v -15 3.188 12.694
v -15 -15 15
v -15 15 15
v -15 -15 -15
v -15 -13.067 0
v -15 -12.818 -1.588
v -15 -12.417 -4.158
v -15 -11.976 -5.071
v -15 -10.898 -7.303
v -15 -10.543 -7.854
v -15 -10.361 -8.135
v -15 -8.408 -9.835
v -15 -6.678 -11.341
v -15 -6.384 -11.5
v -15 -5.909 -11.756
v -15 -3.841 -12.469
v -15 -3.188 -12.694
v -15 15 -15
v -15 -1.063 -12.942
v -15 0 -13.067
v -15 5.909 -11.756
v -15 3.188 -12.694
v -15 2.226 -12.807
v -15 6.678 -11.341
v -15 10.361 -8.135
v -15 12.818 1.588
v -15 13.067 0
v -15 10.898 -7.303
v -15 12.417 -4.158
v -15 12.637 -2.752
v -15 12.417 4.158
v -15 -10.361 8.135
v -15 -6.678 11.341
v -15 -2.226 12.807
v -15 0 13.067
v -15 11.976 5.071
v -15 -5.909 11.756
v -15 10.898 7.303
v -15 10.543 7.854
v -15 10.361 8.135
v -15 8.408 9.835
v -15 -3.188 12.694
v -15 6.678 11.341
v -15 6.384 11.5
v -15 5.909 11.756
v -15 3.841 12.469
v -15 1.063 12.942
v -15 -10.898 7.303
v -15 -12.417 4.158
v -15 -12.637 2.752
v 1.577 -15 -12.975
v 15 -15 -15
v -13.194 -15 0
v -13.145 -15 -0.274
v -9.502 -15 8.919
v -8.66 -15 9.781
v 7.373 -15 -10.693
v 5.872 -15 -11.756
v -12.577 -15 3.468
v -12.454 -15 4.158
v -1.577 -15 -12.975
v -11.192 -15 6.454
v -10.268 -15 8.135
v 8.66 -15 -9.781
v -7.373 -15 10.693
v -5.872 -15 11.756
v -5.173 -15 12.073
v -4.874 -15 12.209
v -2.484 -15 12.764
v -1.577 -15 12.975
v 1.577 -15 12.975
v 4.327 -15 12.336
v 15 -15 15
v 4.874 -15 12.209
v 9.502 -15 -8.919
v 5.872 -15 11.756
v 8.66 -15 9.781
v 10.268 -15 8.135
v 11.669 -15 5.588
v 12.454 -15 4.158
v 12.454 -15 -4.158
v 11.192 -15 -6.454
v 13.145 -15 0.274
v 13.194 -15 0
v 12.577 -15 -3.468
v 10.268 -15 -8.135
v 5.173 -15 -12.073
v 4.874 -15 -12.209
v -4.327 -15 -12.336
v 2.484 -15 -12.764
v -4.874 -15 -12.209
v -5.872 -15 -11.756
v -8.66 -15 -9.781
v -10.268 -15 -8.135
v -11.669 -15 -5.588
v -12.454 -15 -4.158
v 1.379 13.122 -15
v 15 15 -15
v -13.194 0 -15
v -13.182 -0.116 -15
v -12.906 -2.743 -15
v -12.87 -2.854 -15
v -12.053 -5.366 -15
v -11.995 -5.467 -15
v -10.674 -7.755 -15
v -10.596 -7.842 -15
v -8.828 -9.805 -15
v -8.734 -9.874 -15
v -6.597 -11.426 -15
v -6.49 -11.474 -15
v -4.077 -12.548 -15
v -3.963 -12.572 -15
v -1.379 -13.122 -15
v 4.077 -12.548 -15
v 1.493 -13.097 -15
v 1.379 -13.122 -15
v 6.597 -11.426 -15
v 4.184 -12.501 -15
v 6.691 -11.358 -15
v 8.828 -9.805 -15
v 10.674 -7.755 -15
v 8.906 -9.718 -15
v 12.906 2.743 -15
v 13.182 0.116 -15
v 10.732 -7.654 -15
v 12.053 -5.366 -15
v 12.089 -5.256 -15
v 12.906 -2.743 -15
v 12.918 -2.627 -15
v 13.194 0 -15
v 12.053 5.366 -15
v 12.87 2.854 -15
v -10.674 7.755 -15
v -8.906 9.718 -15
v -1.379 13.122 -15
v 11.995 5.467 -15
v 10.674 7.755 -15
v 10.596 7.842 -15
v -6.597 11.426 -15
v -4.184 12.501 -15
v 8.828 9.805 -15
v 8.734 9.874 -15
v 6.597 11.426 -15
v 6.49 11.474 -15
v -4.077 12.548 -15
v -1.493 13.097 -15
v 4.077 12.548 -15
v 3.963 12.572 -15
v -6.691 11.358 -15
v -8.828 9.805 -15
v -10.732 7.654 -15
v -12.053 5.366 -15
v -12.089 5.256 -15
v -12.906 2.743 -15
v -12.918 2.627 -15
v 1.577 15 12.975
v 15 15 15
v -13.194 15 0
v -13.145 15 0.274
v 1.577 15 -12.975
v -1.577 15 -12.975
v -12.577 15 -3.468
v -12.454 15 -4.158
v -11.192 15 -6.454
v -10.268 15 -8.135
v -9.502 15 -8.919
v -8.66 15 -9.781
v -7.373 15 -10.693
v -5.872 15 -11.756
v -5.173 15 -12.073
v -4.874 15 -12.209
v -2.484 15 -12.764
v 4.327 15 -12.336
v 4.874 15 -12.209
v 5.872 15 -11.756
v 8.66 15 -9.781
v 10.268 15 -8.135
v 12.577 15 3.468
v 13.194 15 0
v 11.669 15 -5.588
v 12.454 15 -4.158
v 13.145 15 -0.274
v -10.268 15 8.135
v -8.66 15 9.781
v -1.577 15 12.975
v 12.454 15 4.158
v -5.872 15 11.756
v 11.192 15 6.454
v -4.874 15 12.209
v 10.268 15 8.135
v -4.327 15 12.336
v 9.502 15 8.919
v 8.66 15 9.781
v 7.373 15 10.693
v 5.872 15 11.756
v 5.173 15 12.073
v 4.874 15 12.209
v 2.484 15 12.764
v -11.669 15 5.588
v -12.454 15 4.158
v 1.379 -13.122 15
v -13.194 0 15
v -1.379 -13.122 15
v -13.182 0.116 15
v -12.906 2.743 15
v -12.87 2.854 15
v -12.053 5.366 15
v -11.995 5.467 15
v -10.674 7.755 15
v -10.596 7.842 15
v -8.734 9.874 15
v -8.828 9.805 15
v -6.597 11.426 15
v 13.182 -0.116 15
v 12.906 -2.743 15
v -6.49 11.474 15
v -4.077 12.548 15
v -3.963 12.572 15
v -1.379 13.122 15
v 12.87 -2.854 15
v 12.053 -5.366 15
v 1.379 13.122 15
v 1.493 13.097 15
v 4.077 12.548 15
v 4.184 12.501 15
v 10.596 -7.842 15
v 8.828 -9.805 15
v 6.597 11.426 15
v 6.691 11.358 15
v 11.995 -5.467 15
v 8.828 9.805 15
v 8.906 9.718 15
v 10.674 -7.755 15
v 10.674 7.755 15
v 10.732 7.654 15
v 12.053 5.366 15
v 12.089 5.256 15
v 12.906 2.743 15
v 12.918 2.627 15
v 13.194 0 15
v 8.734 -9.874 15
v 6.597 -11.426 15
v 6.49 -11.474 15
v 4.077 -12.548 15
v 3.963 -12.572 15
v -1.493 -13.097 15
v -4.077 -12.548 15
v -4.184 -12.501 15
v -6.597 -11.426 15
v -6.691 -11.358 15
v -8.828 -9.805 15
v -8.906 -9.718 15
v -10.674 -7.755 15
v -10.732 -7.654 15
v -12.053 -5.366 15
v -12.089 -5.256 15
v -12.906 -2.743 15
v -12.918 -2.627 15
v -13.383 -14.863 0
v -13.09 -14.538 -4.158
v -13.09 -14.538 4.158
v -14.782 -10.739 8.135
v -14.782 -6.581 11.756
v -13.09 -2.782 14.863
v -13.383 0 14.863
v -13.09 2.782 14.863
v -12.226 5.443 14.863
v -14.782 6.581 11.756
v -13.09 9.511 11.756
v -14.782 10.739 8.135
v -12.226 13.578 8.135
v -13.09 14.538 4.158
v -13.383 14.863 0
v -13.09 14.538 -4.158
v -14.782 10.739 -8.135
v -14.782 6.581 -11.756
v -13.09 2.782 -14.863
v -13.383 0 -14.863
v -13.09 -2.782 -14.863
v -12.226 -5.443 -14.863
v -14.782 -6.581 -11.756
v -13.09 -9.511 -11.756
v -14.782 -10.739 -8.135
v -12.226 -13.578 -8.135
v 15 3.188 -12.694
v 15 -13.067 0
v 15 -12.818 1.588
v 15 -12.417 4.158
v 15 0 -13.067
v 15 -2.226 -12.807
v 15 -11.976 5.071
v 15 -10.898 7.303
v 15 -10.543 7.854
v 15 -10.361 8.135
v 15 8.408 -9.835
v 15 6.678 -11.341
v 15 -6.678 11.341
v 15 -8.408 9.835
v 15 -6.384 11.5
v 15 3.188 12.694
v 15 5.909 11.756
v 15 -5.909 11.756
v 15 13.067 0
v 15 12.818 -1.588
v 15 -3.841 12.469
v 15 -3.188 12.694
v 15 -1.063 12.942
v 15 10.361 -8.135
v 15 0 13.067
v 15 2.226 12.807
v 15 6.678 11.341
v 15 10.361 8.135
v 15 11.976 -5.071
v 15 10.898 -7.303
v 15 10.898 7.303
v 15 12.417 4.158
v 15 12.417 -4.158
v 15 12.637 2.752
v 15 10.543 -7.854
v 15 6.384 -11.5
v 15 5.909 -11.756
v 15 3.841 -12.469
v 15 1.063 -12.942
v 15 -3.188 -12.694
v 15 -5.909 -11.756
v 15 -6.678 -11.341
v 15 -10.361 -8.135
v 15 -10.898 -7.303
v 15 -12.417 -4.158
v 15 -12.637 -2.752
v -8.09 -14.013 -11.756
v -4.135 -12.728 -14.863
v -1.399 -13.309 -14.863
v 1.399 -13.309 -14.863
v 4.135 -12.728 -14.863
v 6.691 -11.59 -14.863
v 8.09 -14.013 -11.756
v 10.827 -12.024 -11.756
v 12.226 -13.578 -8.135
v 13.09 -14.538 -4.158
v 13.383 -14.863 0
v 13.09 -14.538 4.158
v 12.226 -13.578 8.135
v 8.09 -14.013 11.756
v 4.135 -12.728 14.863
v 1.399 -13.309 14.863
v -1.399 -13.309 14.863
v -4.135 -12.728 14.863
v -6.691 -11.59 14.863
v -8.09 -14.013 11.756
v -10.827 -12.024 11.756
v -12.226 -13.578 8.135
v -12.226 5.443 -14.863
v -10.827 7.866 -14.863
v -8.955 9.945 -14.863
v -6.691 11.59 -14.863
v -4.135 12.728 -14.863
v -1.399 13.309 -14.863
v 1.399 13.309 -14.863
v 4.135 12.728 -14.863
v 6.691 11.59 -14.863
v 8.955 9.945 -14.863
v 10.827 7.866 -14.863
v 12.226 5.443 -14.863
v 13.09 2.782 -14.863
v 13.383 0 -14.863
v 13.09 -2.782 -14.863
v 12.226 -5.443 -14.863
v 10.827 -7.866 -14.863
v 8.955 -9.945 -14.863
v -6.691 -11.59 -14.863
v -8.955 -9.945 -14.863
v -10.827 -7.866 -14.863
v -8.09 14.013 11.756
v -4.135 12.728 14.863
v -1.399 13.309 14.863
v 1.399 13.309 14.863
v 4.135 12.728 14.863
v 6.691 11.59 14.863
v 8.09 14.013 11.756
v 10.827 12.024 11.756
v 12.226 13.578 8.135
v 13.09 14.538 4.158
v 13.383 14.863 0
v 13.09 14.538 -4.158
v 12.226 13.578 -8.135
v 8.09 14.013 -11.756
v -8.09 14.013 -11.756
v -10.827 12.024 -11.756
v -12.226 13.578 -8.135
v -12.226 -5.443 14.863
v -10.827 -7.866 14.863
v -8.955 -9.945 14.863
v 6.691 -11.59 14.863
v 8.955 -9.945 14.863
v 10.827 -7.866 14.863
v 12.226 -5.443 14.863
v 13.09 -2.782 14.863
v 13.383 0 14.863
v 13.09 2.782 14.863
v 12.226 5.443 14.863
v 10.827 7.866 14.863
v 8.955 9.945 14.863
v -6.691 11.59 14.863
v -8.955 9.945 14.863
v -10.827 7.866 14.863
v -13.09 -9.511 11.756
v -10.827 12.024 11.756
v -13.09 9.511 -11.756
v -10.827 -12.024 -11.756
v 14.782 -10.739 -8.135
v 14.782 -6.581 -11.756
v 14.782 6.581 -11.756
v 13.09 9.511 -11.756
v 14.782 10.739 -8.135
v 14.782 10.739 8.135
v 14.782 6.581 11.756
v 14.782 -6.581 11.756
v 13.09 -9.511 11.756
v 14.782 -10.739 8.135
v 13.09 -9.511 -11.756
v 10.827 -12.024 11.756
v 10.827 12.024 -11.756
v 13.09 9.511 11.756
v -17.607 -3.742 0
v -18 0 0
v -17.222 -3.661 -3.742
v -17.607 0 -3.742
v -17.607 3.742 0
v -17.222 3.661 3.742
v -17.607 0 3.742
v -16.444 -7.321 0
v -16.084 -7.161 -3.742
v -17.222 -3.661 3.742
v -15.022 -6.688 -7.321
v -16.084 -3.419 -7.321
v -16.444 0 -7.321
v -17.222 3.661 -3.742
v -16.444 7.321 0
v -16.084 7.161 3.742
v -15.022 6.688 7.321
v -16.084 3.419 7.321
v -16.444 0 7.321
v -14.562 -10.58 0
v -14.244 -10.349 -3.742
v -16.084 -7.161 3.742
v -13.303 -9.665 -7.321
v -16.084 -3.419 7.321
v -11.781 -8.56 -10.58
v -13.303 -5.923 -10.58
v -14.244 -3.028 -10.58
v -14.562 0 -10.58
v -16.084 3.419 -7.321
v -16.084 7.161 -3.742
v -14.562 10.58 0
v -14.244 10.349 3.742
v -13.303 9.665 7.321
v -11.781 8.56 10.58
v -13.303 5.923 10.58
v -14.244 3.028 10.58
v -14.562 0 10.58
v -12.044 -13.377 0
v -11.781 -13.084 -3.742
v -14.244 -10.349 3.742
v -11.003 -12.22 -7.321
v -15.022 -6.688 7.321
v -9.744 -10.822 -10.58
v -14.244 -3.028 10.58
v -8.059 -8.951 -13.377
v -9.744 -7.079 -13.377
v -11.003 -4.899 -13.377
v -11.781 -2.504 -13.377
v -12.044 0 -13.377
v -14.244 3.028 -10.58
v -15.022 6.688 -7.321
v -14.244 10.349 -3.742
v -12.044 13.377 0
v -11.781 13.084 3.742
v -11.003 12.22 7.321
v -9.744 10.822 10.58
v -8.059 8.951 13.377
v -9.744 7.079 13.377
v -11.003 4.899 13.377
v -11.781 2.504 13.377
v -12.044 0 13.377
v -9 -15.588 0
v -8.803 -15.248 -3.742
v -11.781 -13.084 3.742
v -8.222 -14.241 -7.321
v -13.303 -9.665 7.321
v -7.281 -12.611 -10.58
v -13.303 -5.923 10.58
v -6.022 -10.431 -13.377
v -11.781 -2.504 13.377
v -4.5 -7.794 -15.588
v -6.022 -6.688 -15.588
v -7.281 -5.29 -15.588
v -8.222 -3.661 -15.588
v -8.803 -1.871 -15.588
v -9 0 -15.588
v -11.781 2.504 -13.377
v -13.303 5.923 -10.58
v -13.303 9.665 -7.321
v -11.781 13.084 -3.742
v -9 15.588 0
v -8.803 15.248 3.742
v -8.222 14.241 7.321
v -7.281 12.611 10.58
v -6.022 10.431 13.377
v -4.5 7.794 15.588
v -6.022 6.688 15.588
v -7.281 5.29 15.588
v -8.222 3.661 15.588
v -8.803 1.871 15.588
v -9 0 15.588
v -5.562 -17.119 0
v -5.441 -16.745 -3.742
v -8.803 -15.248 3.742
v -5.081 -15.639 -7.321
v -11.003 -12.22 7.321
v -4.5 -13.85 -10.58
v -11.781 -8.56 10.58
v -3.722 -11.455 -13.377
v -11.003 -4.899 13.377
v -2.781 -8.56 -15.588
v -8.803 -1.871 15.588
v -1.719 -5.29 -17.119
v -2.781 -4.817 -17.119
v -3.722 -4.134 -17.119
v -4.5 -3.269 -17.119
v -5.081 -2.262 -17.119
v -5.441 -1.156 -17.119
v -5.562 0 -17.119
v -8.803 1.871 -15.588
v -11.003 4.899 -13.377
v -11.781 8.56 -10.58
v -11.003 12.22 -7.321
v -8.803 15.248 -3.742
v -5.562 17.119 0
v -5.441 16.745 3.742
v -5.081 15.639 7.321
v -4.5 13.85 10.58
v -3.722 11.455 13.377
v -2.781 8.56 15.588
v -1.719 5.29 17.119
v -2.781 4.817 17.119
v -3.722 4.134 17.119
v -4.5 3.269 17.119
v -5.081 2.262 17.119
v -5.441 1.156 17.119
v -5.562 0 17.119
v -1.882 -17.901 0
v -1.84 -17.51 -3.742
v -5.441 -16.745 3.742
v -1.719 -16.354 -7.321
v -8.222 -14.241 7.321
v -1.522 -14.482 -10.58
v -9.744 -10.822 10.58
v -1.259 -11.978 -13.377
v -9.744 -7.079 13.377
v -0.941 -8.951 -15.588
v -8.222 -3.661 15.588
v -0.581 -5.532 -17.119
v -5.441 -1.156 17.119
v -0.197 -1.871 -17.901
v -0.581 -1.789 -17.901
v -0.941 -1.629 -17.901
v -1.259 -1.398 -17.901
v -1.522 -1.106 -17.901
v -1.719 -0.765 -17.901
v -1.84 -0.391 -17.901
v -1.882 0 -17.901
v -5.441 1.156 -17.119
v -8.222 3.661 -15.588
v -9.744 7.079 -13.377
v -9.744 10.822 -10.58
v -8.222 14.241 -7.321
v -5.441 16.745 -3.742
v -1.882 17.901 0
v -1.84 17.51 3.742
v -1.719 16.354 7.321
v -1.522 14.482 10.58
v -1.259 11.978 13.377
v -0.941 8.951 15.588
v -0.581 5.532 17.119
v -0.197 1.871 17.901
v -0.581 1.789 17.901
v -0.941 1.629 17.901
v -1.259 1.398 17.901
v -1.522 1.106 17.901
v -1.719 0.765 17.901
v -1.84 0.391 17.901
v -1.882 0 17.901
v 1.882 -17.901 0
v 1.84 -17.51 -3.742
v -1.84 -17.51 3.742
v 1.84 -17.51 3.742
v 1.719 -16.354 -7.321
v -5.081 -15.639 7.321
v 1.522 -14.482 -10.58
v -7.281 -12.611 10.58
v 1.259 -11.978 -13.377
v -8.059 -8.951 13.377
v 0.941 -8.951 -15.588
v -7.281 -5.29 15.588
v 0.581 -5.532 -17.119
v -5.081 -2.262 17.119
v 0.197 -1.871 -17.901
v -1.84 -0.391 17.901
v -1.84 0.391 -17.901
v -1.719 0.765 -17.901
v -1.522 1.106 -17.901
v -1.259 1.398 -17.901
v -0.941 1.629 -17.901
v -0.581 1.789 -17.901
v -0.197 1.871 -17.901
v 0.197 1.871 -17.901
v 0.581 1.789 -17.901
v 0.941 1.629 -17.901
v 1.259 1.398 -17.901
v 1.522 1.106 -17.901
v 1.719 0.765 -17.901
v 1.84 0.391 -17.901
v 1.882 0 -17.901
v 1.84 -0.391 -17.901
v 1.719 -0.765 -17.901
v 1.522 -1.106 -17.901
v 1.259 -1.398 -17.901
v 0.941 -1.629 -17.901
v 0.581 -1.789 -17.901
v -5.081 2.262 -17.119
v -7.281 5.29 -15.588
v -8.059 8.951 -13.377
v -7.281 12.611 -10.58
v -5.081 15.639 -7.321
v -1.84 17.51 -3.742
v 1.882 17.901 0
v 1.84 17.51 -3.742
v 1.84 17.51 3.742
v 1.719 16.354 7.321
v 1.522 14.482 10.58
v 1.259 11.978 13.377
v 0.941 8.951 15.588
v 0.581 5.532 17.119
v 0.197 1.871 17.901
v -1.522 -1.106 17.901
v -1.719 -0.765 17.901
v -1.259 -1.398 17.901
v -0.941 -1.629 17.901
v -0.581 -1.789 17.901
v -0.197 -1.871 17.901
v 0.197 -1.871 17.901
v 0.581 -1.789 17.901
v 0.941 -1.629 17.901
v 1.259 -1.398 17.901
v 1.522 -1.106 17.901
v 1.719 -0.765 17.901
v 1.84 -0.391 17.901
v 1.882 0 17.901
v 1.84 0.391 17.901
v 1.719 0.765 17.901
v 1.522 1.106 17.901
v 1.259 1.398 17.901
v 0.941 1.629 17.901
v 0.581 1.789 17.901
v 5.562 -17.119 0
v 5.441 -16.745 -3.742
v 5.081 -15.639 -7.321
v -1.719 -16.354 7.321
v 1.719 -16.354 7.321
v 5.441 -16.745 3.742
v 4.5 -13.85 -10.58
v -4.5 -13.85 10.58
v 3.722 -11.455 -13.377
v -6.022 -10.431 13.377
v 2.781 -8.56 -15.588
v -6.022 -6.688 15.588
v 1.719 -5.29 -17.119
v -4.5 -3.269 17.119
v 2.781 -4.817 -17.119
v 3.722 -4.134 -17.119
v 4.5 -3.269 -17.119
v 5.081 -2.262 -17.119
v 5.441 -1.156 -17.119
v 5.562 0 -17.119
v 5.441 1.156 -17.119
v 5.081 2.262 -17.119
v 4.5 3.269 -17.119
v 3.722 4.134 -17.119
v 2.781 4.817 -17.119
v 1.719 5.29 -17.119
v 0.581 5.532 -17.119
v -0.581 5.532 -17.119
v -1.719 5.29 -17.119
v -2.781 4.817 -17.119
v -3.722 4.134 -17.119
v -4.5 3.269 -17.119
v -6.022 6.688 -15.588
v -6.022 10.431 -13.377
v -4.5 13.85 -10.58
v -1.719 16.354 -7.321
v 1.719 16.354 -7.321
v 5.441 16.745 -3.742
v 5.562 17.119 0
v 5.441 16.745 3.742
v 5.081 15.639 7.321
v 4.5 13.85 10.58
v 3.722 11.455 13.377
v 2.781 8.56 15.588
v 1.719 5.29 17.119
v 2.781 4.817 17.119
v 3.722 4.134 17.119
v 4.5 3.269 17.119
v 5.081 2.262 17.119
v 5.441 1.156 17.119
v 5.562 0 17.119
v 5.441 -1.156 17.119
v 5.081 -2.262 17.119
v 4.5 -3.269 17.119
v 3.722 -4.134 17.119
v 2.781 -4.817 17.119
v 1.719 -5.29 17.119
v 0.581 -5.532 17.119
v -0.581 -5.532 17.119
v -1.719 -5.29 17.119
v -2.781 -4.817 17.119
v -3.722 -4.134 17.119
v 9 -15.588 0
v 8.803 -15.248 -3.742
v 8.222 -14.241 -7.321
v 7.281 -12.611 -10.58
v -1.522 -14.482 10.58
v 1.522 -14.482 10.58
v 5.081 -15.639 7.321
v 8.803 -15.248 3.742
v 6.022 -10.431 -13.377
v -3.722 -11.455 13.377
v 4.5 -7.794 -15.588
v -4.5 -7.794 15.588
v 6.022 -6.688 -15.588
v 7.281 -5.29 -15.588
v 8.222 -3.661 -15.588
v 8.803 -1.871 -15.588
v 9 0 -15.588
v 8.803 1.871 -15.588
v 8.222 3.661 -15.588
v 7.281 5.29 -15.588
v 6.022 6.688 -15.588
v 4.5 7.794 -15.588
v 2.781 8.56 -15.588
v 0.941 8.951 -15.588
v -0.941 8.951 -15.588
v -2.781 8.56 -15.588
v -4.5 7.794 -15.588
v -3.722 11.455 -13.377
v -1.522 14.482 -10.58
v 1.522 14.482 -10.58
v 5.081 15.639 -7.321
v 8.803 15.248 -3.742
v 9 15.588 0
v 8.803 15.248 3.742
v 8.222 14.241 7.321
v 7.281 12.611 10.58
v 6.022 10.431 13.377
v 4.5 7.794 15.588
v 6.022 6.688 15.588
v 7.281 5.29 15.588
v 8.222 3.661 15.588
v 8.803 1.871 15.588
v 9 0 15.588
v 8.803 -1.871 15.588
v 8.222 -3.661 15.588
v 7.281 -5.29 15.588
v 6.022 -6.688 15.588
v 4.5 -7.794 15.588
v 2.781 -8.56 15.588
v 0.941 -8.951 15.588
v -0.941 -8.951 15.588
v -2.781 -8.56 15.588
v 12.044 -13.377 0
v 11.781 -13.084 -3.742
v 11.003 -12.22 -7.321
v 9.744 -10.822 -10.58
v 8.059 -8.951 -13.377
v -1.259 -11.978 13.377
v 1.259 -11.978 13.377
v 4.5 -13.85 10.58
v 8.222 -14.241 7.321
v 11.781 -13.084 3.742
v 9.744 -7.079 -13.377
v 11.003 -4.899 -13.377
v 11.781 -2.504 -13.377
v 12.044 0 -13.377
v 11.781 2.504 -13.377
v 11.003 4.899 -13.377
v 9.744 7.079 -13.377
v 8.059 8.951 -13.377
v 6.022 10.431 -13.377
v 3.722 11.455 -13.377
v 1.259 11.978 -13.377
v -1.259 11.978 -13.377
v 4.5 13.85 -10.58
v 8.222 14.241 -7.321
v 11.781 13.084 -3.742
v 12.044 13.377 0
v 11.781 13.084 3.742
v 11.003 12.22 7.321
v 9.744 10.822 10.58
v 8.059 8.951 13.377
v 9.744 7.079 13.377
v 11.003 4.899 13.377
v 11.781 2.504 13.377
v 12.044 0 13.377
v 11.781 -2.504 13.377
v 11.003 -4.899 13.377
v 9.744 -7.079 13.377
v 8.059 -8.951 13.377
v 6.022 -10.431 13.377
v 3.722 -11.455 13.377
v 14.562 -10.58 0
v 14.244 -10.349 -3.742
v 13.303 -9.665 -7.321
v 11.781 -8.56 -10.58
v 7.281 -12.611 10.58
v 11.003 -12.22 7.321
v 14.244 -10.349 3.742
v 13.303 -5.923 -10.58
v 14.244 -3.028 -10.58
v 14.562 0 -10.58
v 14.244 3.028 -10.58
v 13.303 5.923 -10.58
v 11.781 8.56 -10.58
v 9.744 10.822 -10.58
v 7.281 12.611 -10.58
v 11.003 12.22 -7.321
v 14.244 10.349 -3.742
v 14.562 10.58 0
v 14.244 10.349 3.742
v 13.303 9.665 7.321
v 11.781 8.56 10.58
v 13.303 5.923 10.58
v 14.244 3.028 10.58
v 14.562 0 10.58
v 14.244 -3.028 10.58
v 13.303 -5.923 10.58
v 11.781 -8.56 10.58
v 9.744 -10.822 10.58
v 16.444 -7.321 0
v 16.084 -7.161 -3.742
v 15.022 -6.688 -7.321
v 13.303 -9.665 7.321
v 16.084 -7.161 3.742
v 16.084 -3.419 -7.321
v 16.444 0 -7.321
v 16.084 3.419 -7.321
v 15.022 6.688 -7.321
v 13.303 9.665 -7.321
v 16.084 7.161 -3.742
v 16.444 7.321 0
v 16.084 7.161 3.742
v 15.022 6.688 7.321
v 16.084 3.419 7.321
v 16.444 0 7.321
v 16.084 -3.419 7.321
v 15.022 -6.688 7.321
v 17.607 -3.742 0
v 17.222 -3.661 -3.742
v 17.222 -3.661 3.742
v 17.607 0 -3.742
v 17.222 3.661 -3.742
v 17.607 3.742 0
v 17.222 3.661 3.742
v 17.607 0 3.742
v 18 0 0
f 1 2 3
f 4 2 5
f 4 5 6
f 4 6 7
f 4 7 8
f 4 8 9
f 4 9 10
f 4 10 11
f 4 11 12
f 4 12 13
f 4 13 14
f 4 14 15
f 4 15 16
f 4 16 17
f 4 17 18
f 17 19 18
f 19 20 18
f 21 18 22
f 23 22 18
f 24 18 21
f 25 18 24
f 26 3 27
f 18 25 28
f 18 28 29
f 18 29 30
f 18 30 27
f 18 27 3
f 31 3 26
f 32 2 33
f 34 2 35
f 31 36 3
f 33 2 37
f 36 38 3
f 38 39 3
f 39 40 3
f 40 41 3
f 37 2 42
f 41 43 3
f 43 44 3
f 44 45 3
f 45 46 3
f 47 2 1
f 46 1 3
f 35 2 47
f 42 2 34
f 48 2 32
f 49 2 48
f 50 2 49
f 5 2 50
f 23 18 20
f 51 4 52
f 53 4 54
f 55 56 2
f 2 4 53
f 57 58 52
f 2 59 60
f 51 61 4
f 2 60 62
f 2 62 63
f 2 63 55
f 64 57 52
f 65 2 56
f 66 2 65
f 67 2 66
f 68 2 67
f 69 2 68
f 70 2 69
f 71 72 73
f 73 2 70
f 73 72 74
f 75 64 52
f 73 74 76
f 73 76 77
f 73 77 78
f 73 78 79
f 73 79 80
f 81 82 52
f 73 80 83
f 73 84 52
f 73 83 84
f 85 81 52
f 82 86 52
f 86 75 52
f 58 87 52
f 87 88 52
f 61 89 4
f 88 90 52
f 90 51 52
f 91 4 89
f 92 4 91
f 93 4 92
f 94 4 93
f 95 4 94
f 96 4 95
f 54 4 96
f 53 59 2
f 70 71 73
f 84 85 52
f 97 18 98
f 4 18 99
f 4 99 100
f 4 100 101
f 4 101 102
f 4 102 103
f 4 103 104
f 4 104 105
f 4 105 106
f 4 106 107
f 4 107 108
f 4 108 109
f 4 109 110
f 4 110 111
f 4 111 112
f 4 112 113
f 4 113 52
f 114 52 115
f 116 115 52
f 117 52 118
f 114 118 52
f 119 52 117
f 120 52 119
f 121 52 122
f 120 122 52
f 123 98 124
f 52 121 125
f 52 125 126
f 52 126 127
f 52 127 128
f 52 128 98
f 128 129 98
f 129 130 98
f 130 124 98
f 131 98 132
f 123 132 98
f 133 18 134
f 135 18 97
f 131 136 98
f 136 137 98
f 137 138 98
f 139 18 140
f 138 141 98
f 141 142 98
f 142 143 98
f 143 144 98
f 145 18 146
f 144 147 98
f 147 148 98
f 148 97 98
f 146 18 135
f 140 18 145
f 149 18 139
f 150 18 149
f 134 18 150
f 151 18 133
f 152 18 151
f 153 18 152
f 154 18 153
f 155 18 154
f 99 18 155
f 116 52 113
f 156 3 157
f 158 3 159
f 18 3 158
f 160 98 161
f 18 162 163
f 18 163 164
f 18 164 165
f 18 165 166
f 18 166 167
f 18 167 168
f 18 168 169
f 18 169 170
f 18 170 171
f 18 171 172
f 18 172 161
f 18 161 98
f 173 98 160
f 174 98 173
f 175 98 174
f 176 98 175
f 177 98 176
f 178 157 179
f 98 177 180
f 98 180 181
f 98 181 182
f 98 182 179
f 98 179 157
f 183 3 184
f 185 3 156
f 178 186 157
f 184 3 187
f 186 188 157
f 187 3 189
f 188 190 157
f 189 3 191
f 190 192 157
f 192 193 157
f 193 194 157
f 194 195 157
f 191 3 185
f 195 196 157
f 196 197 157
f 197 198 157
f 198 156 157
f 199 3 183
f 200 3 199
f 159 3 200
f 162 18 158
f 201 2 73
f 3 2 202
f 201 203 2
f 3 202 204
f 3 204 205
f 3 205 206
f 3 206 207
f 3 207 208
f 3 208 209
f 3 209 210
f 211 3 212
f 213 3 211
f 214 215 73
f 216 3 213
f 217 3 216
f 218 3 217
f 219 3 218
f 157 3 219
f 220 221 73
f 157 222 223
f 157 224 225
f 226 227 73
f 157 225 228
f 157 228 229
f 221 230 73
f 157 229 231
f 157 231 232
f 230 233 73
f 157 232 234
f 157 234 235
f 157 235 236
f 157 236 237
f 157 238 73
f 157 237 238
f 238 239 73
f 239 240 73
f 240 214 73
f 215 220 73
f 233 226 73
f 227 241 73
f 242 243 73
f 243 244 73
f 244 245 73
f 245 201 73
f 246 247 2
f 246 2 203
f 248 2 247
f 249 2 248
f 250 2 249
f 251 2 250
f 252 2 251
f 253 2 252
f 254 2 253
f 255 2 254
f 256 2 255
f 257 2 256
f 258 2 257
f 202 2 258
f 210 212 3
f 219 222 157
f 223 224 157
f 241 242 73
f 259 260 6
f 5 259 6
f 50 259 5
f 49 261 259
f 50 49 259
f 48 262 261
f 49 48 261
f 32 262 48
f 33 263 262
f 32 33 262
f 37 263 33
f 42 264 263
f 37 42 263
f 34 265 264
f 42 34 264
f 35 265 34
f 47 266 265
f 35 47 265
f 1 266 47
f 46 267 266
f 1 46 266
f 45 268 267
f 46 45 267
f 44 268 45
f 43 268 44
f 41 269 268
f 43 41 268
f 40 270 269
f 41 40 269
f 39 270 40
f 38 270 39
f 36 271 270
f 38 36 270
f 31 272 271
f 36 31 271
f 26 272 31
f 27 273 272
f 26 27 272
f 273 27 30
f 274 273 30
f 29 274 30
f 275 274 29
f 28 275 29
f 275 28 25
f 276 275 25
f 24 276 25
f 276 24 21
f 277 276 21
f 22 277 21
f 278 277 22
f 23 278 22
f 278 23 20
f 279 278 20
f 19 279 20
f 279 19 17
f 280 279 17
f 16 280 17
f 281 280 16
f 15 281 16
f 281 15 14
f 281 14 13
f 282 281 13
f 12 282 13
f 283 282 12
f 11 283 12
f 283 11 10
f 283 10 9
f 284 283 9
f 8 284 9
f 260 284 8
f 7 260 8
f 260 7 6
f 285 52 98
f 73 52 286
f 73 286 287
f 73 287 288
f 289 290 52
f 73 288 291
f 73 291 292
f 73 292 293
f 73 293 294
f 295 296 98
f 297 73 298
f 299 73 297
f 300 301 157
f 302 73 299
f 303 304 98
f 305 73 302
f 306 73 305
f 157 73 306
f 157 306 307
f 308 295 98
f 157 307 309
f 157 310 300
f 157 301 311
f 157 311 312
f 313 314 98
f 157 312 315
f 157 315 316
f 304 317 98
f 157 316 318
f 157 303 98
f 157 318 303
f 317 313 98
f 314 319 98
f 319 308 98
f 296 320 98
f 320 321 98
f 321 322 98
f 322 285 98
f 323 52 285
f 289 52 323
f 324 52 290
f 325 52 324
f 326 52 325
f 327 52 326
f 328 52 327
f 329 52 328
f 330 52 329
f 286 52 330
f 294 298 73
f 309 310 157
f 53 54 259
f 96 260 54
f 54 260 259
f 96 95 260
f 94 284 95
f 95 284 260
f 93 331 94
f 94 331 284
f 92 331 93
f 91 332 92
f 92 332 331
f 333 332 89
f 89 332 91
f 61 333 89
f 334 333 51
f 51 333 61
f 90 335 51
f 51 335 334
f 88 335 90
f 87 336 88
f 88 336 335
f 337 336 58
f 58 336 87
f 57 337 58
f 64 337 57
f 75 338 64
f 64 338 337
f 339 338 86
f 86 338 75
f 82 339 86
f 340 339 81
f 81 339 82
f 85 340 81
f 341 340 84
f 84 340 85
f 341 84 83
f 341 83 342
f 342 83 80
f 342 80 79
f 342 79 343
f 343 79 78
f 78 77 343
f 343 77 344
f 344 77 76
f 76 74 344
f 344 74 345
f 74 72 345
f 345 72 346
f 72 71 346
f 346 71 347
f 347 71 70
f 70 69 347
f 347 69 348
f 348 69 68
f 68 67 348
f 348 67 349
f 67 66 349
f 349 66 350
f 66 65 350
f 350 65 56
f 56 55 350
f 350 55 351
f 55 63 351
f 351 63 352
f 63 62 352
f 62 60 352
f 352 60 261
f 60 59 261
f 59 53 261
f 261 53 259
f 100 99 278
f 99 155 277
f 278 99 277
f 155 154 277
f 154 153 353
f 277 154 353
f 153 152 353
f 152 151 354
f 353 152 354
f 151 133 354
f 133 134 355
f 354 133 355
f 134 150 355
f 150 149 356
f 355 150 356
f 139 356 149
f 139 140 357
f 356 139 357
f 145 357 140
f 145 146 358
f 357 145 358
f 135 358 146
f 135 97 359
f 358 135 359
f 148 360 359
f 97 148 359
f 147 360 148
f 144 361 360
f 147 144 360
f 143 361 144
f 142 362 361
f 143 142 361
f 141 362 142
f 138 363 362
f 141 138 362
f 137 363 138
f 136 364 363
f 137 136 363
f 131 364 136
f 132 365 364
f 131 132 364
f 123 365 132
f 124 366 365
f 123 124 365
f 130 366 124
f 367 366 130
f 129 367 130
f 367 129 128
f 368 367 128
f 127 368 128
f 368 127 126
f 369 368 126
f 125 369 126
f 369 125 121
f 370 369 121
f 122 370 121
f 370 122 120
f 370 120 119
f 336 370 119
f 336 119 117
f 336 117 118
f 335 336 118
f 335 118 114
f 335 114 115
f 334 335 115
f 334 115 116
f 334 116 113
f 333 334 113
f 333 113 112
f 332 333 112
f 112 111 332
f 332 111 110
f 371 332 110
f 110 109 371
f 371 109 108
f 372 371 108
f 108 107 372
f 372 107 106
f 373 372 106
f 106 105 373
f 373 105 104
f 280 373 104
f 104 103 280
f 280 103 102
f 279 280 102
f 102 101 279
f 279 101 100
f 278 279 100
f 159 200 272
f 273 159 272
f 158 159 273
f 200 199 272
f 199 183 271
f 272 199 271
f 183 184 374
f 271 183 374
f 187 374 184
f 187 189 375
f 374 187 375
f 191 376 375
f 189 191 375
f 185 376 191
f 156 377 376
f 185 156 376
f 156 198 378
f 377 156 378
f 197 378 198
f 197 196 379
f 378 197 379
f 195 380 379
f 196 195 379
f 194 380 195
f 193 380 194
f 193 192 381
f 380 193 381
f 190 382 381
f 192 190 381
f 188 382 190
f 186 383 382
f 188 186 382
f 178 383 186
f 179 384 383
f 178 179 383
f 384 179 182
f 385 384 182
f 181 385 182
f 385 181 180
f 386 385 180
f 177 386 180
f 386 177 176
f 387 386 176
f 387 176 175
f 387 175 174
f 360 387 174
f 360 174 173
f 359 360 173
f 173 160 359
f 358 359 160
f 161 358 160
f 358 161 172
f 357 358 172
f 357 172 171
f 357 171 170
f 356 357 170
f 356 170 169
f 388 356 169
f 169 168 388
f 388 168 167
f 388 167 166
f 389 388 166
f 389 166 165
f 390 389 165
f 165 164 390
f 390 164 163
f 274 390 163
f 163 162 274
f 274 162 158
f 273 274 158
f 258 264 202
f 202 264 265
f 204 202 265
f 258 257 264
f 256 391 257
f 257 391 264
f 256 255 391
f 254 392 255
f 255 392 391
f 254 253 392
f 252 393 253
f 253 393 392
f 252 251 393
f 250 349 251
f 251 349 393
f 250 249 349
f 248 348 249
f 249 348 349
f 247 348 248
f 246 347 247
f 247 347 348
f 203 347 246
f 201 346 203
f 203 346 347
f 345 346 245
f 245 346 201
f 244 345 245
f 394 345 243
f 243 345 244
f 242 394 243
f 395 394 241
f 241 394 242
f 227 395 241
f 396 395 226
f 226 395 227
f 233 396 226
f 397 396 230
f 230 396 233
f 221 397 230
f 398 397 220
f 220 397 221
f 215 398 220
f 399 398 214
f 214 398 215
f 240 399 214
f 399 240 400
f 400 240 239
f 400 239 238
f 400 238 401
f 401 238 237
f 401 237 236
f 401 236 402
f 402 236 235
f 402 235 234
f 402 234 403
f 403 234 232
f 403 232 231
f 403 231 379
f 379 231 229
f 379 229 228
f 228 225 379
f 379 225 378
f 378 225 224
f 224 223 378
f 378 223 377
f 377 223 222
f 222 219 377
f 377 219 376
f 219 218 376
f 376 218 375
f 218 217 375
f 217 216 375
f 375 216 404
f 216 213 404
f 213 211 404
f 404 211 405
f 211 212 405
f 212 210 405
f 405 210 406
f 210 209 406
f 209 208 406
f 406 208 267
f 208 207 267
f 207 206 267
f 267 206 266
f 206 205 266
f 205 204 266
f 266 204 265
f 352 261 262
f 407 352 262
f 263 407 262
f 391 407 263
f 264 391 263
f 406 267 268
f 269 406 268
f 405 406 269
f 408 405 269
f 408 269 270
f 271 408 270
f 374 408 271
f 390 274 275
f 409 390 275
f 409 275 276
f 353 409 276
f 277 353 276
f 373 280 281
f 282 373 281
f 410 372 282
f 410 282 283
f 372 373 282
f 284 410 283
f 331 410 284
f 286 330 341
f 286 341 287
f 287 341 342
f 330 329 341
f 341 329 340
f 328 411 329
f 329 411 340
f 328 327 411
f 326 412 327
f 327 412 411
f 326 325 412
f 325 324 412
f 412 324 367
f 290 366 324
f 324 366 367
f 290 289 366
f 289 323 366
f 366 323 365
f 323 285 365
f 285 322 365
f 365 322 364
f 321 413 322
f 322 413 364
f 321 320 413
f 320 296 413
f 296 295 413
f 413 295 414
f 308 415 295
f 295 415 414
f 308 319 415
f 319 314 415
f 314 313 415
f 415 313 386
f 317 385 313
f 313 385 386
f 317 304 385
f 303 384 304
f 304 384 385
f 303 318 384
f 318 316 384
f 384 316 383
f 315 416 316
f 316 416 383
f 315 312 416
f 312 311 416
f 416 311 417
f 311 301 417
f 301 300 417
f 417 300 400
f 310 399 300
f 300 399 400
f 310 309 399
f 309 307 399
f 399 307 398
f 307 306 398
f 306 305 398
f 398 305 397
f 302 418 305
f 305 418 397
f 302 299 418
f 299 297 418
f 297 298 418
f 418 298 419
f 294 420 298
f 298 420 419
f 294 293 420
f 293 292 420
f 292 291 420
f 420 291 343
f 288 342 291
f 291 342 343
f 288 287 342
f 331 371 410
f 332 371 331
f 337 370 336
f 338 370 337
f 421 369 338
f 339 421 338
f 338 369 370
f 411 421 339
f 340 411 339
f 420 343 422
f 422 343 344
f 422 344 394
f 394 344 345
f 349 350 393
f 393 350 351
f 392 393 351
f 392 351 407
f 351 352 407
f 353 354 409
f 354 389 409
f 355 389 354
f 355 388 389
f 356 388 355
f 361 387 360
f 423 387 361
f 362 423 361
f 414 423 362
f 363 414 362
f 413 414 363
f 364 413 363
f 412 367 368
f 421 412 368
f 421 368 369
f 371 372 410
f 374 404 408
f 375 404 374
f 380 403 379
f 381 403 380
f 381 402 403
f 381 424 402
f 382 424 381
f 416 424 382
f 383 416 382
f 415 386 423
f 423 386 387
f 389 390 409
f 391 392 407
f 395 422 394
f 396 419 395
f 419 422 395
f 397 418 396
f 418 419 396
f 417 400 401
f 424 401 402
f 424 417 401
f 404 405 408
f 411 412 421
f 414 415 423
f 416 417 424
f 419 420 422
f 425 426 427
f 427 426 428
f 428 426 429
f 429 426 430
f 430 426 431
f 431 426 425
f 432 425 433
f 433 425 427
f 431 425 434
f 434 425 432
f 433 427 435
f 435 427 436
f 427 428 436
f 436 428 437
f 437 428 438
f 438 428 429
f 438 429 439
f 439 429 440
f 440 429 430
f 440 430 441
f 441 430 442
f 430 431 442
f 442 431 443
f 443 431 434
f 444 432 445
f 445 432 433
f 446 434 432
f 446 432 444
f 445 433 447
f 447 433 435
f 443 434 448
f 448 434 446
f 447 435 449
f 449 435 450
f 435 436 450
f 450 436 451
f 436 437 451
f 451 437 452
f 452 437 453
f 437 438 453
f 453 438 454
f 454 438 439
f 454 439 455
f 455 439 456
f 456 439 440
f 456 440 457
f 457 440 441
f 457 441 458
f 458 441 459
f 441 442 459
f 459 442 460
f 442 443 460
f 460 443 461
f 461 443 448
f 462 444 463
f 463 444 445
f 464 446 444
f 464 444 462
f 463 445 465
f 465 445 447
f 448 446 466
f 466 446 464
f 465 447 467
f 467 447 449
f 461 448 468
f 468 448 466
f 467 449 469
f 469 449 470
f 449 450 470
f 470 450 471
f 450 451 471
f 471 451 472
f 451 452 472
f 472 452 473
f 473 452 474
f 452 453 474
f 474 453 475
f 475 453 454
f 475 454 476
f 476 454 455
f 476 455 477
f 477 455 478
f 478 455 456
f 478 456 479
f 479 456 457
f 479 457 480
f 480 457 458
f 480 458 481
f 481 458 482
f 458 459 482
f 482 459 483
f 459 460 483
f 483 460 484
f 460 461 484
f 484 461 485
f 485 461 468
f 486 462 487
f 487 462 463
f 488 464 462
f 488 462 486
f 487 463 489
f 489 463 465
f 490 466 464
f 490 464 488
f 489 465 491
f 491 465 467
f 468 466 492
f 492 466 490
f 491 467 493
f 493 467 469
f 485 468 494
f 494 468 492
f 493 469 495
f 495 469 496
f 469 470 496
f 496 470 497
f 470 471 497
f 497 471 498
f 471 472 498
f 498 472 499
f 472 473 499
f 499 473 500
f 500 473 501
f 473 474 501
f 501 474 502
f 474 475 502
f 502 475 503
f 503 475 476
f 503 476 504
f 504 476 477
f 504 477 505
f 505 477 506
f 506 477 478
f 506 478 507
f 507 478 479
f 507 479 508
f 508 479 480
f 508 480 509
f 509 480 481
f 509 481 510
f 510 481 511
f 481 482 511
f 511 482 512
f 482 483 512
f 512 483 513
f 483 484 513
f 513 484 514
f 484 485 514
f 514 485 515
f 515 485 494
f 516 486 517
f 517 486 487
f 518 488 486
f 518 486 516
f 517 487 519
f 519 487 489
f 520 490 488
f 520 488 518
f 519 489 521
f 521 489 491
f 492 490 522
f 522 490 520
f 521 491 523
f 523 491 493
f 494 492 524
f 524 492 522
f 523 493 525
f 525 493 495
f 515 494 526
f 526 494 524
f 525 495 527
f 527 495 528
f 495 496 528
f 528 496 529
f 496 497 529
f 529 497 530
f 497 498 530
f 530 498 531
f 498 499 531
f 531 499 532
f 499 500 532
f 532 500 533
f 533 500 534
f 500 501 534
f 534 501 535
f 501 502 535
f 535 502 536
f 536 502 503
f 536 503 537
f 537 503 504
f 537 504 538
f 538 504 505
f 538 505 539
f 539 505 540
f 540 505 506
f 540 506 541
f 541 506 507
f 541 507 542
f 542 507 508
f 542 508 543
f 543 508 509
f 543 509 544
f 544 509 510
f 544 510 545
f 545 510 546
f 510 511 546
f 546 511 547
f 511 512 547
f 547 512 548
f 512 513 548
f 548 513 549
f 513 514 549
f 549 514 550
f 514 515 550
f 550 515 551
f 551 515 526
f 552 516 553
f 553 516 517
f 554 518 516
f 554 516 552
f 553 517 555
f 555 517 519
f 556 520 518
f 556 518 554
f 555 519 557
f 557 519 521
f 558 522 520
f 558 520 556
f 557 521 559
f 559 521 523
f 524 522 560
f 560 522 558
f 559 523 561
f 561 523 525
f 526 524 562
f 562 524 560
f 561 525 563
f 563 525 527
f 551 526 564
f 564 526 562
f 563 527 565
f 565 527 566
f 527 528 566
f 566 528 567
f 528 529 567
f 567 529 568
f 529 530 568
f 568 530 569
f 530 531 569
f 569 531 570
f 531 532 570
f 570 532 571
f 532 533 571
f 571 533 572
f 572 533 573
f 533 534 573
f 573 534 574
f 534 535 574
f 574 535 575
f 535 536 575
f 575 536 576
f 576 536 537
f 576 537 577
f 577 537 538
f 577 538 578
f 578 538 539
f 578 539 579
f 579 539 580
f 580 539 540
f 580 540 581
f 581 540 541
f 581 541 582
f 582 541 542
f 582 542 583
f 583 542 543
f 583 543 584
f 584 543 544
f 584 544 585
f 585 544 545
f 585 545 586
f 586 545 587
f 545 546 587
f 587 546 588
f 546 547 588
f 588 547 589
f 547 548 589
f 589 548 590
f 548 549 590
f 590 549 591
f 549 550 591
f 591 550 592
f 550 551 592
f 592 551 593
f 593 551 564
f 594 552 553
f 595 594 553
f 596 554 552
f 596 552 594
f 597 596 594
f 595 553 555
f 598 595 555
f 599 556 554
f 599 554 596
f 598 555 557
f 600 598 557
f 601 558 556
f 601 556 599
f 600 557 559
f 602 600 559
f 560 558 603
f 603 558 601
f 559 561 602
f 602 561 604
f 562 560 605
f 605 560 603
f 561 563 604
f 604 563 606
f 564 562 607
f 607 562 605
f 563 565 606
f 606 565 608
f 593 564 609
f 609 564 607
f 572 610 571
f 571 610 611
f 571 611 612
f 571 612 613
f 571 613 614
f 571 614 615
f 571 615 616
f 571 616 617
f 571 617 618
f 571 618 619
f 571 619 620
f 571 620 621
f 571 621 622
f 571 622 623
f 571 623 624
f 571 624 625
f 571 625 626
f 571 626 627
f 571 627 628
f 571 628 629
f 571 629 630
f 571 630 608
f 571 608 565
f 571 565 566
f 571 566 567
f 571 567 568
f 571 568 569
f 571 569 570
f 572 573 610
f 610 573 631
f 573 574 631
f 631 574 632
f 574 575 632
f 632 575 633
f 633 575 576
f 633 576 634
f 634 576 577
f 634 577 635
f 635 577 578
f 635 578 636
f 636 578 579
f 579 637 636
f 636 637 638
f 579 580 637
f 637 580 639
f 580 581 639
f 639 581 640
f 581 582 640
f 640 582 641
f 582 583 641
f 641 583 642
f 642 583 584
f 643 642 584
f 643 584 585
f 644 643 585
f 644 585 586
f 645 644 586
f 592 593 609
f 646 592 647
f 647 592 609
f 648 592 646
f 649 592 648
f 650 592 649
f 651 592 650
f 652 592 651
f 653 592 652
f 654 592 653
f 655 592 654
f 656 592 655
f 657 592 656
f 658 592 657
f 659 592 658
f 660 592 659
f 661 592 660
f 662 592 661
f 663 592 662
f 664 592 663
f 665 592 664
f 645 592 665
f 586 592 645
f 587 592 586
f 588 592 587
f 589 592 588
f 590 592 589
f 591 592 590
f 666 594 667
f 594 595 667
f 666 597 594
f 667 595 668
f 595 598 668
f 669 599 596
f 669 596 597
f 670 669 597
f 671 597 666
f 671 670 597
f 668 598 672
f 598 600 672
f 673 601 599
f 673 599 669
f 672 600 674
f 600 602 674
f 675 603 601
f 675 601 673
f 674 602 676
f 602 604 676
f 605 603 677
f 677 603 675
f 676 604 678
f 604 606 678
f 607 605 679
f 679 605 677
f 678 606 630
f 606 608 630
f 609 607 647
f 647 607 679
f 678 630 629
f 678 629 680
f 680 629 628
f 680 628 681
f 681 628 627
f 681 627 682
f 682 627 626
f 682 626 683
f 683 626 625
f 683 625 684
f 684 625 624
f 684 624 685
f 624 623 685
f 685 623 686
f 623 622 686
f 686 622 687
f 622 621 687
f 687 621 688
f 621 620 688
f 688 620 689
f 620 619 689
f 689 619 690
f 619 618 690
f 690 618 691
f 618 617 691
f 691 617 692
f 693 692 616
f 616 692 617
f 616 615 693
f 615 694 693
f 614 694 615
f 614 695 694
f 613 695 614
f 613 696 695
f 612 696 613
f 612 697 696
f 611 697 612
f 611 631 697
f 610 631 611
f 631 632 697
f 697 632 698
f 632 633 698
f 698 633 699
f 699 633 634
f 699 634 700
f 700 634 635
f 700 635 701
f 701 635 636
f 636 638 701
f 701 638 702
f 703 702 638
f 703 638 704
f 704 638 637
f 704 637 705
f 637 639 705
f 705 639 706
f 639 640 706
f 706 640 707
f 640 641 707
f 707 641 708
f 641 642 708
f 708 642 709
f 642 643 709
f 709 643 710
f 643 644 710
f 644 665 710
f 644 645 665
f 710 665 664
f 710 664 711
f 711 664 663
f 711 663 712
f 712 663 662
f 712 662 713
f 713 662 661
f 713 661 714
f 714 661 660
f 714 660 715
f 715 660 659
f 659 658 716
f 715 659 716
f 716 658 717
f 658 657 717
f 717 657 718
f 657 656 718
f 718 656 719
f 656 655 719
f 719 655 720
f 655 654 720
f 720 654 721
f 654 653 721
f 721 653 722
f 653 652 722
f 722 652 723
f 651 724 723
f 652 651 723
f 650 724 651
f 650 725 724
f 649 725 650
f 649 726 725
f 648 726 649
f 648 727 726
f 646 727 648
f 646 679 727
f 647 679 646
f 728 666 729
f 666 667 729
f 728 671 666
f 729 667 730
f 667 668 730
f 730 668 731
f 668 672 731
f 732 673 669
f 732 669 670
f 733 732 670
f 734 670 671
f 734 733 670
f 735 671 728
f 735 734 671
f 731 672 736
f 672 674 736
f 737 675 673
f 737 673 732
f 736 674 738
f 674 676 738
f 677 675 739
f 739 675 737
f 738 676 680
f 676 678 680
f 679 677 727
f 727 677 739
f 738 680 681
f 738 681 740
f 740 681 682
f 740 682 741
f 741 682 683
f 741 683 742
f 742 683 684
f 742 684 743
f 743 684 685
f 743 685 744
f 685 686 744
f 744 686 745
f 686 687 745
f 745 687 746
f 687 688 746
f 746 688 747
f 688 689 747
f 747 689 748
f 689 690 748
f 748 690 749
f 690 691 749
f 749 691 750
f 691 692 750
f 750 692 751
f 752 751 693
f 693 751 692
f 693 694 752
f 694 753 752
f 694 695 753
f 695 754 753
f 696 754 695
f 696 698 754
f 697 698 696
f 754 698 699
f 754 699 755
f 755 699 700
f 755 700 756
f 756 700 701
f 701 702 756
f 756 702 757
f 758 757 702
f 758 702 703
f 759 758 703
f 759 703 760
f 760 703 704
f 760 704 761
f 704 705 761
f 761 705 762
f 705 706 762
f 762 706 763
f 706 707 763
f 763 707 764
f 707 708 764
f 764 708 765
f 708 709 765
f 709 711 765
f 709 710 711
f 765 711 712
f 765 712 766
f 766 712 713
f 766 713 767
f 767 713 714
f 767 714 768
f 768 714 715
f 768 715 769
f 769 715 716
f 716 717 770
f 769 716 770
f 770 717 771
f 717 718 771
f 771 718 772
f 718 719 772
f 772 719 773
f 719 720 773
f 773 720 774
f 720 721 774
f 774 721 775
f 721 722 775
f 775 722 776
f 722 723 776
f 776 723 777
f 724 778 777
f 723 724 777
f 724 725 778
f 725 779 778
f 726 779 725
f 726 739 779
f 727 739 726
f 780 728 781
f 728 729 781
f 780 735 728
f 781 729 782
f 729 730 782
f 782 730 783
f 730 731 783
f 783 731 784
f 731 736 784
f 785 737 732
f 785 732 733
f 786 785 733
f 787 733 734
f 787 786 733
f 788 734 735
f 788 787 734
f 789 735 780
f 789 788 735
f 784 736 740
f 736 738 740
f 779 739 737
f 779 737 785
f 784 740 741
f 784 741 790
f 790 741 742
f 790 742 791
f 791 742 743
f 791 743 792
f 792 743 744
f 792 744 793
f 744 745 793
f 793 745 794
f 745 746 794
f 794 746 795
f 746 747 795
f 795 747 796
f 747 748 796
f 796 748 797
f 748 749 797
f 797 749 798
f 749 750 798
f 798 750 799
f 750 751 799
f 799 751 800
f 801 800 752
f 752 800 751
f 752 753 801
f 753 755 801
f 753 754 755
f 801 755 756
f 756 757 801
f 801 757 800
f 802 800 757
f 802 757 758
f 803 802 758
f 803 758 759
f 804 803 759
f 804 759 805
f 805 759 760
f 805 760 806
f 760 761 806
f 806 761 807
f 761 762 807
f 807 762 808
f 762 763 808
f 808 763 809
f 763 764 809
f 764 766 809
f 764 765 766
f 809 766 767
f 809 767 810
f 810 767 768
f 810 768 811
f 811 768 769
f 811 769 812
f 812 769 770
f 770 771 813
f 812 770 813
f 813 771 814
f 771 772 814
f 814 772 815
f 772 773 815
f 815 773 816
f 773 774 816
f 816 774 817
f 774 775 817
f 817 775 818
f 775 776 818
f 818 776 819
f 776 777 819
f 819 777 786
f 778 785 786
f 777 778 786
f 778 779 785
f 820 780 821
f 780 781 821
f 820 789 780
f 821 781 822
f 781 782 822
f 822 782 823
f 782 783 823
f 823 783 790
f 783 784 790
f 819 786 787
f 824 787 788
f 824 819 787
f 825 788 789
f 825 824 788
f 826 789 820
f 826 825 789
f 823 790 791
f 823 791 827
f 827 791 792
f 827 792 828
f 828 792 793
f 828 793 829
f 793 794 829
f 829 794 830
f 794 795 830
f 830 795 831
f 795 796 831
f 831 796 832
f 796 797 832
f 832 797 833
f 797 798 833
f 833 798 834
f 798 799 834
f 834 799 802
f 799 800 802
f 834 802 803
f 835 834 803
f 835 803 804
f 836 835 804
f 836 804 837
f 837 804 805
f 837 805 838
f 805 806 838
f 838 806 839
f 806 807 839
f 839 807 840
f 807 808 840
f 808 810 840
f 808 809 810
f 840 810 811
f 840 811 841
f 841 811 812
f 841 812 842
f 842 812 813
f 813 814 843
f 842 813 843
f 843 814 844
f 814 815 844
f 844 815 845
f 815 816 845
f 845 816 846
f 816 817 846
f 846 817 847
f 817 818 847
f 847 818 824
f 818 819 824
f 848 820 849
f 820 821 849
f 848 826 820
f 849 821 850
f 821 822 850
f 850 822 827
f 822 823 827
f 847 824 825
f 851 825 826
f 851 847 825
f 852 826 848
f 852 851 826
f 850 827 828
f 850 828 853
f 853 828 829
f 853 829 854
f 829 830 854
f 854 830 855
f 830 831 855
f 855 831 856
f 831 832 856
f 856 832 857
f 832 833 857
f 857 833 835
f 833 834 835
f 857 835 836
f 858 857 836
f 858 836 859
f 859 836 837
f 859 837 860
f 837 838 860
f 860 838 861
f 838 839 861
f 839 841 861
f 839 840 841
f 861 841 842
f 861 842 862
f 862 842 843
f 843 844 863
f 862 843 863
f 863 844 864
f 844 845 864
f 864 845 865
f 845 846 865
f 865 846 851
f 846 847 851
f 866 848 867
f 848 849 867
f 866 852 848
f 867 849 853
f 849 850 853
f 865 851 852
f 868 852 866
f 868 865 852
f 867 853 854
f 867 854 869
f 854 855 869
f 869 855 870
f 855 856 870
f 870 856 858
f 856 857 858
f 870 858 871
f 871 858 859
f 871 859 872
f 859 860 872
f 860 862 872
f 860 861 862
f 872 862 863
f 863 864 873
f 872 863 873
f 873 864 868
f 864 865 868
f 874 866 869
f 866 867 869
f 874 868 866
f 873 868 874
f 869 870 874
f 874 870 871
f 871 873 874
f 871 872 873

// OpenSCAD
difference() {
  cube(30, center=true);
  sphere(20);
}

sphere(18);
